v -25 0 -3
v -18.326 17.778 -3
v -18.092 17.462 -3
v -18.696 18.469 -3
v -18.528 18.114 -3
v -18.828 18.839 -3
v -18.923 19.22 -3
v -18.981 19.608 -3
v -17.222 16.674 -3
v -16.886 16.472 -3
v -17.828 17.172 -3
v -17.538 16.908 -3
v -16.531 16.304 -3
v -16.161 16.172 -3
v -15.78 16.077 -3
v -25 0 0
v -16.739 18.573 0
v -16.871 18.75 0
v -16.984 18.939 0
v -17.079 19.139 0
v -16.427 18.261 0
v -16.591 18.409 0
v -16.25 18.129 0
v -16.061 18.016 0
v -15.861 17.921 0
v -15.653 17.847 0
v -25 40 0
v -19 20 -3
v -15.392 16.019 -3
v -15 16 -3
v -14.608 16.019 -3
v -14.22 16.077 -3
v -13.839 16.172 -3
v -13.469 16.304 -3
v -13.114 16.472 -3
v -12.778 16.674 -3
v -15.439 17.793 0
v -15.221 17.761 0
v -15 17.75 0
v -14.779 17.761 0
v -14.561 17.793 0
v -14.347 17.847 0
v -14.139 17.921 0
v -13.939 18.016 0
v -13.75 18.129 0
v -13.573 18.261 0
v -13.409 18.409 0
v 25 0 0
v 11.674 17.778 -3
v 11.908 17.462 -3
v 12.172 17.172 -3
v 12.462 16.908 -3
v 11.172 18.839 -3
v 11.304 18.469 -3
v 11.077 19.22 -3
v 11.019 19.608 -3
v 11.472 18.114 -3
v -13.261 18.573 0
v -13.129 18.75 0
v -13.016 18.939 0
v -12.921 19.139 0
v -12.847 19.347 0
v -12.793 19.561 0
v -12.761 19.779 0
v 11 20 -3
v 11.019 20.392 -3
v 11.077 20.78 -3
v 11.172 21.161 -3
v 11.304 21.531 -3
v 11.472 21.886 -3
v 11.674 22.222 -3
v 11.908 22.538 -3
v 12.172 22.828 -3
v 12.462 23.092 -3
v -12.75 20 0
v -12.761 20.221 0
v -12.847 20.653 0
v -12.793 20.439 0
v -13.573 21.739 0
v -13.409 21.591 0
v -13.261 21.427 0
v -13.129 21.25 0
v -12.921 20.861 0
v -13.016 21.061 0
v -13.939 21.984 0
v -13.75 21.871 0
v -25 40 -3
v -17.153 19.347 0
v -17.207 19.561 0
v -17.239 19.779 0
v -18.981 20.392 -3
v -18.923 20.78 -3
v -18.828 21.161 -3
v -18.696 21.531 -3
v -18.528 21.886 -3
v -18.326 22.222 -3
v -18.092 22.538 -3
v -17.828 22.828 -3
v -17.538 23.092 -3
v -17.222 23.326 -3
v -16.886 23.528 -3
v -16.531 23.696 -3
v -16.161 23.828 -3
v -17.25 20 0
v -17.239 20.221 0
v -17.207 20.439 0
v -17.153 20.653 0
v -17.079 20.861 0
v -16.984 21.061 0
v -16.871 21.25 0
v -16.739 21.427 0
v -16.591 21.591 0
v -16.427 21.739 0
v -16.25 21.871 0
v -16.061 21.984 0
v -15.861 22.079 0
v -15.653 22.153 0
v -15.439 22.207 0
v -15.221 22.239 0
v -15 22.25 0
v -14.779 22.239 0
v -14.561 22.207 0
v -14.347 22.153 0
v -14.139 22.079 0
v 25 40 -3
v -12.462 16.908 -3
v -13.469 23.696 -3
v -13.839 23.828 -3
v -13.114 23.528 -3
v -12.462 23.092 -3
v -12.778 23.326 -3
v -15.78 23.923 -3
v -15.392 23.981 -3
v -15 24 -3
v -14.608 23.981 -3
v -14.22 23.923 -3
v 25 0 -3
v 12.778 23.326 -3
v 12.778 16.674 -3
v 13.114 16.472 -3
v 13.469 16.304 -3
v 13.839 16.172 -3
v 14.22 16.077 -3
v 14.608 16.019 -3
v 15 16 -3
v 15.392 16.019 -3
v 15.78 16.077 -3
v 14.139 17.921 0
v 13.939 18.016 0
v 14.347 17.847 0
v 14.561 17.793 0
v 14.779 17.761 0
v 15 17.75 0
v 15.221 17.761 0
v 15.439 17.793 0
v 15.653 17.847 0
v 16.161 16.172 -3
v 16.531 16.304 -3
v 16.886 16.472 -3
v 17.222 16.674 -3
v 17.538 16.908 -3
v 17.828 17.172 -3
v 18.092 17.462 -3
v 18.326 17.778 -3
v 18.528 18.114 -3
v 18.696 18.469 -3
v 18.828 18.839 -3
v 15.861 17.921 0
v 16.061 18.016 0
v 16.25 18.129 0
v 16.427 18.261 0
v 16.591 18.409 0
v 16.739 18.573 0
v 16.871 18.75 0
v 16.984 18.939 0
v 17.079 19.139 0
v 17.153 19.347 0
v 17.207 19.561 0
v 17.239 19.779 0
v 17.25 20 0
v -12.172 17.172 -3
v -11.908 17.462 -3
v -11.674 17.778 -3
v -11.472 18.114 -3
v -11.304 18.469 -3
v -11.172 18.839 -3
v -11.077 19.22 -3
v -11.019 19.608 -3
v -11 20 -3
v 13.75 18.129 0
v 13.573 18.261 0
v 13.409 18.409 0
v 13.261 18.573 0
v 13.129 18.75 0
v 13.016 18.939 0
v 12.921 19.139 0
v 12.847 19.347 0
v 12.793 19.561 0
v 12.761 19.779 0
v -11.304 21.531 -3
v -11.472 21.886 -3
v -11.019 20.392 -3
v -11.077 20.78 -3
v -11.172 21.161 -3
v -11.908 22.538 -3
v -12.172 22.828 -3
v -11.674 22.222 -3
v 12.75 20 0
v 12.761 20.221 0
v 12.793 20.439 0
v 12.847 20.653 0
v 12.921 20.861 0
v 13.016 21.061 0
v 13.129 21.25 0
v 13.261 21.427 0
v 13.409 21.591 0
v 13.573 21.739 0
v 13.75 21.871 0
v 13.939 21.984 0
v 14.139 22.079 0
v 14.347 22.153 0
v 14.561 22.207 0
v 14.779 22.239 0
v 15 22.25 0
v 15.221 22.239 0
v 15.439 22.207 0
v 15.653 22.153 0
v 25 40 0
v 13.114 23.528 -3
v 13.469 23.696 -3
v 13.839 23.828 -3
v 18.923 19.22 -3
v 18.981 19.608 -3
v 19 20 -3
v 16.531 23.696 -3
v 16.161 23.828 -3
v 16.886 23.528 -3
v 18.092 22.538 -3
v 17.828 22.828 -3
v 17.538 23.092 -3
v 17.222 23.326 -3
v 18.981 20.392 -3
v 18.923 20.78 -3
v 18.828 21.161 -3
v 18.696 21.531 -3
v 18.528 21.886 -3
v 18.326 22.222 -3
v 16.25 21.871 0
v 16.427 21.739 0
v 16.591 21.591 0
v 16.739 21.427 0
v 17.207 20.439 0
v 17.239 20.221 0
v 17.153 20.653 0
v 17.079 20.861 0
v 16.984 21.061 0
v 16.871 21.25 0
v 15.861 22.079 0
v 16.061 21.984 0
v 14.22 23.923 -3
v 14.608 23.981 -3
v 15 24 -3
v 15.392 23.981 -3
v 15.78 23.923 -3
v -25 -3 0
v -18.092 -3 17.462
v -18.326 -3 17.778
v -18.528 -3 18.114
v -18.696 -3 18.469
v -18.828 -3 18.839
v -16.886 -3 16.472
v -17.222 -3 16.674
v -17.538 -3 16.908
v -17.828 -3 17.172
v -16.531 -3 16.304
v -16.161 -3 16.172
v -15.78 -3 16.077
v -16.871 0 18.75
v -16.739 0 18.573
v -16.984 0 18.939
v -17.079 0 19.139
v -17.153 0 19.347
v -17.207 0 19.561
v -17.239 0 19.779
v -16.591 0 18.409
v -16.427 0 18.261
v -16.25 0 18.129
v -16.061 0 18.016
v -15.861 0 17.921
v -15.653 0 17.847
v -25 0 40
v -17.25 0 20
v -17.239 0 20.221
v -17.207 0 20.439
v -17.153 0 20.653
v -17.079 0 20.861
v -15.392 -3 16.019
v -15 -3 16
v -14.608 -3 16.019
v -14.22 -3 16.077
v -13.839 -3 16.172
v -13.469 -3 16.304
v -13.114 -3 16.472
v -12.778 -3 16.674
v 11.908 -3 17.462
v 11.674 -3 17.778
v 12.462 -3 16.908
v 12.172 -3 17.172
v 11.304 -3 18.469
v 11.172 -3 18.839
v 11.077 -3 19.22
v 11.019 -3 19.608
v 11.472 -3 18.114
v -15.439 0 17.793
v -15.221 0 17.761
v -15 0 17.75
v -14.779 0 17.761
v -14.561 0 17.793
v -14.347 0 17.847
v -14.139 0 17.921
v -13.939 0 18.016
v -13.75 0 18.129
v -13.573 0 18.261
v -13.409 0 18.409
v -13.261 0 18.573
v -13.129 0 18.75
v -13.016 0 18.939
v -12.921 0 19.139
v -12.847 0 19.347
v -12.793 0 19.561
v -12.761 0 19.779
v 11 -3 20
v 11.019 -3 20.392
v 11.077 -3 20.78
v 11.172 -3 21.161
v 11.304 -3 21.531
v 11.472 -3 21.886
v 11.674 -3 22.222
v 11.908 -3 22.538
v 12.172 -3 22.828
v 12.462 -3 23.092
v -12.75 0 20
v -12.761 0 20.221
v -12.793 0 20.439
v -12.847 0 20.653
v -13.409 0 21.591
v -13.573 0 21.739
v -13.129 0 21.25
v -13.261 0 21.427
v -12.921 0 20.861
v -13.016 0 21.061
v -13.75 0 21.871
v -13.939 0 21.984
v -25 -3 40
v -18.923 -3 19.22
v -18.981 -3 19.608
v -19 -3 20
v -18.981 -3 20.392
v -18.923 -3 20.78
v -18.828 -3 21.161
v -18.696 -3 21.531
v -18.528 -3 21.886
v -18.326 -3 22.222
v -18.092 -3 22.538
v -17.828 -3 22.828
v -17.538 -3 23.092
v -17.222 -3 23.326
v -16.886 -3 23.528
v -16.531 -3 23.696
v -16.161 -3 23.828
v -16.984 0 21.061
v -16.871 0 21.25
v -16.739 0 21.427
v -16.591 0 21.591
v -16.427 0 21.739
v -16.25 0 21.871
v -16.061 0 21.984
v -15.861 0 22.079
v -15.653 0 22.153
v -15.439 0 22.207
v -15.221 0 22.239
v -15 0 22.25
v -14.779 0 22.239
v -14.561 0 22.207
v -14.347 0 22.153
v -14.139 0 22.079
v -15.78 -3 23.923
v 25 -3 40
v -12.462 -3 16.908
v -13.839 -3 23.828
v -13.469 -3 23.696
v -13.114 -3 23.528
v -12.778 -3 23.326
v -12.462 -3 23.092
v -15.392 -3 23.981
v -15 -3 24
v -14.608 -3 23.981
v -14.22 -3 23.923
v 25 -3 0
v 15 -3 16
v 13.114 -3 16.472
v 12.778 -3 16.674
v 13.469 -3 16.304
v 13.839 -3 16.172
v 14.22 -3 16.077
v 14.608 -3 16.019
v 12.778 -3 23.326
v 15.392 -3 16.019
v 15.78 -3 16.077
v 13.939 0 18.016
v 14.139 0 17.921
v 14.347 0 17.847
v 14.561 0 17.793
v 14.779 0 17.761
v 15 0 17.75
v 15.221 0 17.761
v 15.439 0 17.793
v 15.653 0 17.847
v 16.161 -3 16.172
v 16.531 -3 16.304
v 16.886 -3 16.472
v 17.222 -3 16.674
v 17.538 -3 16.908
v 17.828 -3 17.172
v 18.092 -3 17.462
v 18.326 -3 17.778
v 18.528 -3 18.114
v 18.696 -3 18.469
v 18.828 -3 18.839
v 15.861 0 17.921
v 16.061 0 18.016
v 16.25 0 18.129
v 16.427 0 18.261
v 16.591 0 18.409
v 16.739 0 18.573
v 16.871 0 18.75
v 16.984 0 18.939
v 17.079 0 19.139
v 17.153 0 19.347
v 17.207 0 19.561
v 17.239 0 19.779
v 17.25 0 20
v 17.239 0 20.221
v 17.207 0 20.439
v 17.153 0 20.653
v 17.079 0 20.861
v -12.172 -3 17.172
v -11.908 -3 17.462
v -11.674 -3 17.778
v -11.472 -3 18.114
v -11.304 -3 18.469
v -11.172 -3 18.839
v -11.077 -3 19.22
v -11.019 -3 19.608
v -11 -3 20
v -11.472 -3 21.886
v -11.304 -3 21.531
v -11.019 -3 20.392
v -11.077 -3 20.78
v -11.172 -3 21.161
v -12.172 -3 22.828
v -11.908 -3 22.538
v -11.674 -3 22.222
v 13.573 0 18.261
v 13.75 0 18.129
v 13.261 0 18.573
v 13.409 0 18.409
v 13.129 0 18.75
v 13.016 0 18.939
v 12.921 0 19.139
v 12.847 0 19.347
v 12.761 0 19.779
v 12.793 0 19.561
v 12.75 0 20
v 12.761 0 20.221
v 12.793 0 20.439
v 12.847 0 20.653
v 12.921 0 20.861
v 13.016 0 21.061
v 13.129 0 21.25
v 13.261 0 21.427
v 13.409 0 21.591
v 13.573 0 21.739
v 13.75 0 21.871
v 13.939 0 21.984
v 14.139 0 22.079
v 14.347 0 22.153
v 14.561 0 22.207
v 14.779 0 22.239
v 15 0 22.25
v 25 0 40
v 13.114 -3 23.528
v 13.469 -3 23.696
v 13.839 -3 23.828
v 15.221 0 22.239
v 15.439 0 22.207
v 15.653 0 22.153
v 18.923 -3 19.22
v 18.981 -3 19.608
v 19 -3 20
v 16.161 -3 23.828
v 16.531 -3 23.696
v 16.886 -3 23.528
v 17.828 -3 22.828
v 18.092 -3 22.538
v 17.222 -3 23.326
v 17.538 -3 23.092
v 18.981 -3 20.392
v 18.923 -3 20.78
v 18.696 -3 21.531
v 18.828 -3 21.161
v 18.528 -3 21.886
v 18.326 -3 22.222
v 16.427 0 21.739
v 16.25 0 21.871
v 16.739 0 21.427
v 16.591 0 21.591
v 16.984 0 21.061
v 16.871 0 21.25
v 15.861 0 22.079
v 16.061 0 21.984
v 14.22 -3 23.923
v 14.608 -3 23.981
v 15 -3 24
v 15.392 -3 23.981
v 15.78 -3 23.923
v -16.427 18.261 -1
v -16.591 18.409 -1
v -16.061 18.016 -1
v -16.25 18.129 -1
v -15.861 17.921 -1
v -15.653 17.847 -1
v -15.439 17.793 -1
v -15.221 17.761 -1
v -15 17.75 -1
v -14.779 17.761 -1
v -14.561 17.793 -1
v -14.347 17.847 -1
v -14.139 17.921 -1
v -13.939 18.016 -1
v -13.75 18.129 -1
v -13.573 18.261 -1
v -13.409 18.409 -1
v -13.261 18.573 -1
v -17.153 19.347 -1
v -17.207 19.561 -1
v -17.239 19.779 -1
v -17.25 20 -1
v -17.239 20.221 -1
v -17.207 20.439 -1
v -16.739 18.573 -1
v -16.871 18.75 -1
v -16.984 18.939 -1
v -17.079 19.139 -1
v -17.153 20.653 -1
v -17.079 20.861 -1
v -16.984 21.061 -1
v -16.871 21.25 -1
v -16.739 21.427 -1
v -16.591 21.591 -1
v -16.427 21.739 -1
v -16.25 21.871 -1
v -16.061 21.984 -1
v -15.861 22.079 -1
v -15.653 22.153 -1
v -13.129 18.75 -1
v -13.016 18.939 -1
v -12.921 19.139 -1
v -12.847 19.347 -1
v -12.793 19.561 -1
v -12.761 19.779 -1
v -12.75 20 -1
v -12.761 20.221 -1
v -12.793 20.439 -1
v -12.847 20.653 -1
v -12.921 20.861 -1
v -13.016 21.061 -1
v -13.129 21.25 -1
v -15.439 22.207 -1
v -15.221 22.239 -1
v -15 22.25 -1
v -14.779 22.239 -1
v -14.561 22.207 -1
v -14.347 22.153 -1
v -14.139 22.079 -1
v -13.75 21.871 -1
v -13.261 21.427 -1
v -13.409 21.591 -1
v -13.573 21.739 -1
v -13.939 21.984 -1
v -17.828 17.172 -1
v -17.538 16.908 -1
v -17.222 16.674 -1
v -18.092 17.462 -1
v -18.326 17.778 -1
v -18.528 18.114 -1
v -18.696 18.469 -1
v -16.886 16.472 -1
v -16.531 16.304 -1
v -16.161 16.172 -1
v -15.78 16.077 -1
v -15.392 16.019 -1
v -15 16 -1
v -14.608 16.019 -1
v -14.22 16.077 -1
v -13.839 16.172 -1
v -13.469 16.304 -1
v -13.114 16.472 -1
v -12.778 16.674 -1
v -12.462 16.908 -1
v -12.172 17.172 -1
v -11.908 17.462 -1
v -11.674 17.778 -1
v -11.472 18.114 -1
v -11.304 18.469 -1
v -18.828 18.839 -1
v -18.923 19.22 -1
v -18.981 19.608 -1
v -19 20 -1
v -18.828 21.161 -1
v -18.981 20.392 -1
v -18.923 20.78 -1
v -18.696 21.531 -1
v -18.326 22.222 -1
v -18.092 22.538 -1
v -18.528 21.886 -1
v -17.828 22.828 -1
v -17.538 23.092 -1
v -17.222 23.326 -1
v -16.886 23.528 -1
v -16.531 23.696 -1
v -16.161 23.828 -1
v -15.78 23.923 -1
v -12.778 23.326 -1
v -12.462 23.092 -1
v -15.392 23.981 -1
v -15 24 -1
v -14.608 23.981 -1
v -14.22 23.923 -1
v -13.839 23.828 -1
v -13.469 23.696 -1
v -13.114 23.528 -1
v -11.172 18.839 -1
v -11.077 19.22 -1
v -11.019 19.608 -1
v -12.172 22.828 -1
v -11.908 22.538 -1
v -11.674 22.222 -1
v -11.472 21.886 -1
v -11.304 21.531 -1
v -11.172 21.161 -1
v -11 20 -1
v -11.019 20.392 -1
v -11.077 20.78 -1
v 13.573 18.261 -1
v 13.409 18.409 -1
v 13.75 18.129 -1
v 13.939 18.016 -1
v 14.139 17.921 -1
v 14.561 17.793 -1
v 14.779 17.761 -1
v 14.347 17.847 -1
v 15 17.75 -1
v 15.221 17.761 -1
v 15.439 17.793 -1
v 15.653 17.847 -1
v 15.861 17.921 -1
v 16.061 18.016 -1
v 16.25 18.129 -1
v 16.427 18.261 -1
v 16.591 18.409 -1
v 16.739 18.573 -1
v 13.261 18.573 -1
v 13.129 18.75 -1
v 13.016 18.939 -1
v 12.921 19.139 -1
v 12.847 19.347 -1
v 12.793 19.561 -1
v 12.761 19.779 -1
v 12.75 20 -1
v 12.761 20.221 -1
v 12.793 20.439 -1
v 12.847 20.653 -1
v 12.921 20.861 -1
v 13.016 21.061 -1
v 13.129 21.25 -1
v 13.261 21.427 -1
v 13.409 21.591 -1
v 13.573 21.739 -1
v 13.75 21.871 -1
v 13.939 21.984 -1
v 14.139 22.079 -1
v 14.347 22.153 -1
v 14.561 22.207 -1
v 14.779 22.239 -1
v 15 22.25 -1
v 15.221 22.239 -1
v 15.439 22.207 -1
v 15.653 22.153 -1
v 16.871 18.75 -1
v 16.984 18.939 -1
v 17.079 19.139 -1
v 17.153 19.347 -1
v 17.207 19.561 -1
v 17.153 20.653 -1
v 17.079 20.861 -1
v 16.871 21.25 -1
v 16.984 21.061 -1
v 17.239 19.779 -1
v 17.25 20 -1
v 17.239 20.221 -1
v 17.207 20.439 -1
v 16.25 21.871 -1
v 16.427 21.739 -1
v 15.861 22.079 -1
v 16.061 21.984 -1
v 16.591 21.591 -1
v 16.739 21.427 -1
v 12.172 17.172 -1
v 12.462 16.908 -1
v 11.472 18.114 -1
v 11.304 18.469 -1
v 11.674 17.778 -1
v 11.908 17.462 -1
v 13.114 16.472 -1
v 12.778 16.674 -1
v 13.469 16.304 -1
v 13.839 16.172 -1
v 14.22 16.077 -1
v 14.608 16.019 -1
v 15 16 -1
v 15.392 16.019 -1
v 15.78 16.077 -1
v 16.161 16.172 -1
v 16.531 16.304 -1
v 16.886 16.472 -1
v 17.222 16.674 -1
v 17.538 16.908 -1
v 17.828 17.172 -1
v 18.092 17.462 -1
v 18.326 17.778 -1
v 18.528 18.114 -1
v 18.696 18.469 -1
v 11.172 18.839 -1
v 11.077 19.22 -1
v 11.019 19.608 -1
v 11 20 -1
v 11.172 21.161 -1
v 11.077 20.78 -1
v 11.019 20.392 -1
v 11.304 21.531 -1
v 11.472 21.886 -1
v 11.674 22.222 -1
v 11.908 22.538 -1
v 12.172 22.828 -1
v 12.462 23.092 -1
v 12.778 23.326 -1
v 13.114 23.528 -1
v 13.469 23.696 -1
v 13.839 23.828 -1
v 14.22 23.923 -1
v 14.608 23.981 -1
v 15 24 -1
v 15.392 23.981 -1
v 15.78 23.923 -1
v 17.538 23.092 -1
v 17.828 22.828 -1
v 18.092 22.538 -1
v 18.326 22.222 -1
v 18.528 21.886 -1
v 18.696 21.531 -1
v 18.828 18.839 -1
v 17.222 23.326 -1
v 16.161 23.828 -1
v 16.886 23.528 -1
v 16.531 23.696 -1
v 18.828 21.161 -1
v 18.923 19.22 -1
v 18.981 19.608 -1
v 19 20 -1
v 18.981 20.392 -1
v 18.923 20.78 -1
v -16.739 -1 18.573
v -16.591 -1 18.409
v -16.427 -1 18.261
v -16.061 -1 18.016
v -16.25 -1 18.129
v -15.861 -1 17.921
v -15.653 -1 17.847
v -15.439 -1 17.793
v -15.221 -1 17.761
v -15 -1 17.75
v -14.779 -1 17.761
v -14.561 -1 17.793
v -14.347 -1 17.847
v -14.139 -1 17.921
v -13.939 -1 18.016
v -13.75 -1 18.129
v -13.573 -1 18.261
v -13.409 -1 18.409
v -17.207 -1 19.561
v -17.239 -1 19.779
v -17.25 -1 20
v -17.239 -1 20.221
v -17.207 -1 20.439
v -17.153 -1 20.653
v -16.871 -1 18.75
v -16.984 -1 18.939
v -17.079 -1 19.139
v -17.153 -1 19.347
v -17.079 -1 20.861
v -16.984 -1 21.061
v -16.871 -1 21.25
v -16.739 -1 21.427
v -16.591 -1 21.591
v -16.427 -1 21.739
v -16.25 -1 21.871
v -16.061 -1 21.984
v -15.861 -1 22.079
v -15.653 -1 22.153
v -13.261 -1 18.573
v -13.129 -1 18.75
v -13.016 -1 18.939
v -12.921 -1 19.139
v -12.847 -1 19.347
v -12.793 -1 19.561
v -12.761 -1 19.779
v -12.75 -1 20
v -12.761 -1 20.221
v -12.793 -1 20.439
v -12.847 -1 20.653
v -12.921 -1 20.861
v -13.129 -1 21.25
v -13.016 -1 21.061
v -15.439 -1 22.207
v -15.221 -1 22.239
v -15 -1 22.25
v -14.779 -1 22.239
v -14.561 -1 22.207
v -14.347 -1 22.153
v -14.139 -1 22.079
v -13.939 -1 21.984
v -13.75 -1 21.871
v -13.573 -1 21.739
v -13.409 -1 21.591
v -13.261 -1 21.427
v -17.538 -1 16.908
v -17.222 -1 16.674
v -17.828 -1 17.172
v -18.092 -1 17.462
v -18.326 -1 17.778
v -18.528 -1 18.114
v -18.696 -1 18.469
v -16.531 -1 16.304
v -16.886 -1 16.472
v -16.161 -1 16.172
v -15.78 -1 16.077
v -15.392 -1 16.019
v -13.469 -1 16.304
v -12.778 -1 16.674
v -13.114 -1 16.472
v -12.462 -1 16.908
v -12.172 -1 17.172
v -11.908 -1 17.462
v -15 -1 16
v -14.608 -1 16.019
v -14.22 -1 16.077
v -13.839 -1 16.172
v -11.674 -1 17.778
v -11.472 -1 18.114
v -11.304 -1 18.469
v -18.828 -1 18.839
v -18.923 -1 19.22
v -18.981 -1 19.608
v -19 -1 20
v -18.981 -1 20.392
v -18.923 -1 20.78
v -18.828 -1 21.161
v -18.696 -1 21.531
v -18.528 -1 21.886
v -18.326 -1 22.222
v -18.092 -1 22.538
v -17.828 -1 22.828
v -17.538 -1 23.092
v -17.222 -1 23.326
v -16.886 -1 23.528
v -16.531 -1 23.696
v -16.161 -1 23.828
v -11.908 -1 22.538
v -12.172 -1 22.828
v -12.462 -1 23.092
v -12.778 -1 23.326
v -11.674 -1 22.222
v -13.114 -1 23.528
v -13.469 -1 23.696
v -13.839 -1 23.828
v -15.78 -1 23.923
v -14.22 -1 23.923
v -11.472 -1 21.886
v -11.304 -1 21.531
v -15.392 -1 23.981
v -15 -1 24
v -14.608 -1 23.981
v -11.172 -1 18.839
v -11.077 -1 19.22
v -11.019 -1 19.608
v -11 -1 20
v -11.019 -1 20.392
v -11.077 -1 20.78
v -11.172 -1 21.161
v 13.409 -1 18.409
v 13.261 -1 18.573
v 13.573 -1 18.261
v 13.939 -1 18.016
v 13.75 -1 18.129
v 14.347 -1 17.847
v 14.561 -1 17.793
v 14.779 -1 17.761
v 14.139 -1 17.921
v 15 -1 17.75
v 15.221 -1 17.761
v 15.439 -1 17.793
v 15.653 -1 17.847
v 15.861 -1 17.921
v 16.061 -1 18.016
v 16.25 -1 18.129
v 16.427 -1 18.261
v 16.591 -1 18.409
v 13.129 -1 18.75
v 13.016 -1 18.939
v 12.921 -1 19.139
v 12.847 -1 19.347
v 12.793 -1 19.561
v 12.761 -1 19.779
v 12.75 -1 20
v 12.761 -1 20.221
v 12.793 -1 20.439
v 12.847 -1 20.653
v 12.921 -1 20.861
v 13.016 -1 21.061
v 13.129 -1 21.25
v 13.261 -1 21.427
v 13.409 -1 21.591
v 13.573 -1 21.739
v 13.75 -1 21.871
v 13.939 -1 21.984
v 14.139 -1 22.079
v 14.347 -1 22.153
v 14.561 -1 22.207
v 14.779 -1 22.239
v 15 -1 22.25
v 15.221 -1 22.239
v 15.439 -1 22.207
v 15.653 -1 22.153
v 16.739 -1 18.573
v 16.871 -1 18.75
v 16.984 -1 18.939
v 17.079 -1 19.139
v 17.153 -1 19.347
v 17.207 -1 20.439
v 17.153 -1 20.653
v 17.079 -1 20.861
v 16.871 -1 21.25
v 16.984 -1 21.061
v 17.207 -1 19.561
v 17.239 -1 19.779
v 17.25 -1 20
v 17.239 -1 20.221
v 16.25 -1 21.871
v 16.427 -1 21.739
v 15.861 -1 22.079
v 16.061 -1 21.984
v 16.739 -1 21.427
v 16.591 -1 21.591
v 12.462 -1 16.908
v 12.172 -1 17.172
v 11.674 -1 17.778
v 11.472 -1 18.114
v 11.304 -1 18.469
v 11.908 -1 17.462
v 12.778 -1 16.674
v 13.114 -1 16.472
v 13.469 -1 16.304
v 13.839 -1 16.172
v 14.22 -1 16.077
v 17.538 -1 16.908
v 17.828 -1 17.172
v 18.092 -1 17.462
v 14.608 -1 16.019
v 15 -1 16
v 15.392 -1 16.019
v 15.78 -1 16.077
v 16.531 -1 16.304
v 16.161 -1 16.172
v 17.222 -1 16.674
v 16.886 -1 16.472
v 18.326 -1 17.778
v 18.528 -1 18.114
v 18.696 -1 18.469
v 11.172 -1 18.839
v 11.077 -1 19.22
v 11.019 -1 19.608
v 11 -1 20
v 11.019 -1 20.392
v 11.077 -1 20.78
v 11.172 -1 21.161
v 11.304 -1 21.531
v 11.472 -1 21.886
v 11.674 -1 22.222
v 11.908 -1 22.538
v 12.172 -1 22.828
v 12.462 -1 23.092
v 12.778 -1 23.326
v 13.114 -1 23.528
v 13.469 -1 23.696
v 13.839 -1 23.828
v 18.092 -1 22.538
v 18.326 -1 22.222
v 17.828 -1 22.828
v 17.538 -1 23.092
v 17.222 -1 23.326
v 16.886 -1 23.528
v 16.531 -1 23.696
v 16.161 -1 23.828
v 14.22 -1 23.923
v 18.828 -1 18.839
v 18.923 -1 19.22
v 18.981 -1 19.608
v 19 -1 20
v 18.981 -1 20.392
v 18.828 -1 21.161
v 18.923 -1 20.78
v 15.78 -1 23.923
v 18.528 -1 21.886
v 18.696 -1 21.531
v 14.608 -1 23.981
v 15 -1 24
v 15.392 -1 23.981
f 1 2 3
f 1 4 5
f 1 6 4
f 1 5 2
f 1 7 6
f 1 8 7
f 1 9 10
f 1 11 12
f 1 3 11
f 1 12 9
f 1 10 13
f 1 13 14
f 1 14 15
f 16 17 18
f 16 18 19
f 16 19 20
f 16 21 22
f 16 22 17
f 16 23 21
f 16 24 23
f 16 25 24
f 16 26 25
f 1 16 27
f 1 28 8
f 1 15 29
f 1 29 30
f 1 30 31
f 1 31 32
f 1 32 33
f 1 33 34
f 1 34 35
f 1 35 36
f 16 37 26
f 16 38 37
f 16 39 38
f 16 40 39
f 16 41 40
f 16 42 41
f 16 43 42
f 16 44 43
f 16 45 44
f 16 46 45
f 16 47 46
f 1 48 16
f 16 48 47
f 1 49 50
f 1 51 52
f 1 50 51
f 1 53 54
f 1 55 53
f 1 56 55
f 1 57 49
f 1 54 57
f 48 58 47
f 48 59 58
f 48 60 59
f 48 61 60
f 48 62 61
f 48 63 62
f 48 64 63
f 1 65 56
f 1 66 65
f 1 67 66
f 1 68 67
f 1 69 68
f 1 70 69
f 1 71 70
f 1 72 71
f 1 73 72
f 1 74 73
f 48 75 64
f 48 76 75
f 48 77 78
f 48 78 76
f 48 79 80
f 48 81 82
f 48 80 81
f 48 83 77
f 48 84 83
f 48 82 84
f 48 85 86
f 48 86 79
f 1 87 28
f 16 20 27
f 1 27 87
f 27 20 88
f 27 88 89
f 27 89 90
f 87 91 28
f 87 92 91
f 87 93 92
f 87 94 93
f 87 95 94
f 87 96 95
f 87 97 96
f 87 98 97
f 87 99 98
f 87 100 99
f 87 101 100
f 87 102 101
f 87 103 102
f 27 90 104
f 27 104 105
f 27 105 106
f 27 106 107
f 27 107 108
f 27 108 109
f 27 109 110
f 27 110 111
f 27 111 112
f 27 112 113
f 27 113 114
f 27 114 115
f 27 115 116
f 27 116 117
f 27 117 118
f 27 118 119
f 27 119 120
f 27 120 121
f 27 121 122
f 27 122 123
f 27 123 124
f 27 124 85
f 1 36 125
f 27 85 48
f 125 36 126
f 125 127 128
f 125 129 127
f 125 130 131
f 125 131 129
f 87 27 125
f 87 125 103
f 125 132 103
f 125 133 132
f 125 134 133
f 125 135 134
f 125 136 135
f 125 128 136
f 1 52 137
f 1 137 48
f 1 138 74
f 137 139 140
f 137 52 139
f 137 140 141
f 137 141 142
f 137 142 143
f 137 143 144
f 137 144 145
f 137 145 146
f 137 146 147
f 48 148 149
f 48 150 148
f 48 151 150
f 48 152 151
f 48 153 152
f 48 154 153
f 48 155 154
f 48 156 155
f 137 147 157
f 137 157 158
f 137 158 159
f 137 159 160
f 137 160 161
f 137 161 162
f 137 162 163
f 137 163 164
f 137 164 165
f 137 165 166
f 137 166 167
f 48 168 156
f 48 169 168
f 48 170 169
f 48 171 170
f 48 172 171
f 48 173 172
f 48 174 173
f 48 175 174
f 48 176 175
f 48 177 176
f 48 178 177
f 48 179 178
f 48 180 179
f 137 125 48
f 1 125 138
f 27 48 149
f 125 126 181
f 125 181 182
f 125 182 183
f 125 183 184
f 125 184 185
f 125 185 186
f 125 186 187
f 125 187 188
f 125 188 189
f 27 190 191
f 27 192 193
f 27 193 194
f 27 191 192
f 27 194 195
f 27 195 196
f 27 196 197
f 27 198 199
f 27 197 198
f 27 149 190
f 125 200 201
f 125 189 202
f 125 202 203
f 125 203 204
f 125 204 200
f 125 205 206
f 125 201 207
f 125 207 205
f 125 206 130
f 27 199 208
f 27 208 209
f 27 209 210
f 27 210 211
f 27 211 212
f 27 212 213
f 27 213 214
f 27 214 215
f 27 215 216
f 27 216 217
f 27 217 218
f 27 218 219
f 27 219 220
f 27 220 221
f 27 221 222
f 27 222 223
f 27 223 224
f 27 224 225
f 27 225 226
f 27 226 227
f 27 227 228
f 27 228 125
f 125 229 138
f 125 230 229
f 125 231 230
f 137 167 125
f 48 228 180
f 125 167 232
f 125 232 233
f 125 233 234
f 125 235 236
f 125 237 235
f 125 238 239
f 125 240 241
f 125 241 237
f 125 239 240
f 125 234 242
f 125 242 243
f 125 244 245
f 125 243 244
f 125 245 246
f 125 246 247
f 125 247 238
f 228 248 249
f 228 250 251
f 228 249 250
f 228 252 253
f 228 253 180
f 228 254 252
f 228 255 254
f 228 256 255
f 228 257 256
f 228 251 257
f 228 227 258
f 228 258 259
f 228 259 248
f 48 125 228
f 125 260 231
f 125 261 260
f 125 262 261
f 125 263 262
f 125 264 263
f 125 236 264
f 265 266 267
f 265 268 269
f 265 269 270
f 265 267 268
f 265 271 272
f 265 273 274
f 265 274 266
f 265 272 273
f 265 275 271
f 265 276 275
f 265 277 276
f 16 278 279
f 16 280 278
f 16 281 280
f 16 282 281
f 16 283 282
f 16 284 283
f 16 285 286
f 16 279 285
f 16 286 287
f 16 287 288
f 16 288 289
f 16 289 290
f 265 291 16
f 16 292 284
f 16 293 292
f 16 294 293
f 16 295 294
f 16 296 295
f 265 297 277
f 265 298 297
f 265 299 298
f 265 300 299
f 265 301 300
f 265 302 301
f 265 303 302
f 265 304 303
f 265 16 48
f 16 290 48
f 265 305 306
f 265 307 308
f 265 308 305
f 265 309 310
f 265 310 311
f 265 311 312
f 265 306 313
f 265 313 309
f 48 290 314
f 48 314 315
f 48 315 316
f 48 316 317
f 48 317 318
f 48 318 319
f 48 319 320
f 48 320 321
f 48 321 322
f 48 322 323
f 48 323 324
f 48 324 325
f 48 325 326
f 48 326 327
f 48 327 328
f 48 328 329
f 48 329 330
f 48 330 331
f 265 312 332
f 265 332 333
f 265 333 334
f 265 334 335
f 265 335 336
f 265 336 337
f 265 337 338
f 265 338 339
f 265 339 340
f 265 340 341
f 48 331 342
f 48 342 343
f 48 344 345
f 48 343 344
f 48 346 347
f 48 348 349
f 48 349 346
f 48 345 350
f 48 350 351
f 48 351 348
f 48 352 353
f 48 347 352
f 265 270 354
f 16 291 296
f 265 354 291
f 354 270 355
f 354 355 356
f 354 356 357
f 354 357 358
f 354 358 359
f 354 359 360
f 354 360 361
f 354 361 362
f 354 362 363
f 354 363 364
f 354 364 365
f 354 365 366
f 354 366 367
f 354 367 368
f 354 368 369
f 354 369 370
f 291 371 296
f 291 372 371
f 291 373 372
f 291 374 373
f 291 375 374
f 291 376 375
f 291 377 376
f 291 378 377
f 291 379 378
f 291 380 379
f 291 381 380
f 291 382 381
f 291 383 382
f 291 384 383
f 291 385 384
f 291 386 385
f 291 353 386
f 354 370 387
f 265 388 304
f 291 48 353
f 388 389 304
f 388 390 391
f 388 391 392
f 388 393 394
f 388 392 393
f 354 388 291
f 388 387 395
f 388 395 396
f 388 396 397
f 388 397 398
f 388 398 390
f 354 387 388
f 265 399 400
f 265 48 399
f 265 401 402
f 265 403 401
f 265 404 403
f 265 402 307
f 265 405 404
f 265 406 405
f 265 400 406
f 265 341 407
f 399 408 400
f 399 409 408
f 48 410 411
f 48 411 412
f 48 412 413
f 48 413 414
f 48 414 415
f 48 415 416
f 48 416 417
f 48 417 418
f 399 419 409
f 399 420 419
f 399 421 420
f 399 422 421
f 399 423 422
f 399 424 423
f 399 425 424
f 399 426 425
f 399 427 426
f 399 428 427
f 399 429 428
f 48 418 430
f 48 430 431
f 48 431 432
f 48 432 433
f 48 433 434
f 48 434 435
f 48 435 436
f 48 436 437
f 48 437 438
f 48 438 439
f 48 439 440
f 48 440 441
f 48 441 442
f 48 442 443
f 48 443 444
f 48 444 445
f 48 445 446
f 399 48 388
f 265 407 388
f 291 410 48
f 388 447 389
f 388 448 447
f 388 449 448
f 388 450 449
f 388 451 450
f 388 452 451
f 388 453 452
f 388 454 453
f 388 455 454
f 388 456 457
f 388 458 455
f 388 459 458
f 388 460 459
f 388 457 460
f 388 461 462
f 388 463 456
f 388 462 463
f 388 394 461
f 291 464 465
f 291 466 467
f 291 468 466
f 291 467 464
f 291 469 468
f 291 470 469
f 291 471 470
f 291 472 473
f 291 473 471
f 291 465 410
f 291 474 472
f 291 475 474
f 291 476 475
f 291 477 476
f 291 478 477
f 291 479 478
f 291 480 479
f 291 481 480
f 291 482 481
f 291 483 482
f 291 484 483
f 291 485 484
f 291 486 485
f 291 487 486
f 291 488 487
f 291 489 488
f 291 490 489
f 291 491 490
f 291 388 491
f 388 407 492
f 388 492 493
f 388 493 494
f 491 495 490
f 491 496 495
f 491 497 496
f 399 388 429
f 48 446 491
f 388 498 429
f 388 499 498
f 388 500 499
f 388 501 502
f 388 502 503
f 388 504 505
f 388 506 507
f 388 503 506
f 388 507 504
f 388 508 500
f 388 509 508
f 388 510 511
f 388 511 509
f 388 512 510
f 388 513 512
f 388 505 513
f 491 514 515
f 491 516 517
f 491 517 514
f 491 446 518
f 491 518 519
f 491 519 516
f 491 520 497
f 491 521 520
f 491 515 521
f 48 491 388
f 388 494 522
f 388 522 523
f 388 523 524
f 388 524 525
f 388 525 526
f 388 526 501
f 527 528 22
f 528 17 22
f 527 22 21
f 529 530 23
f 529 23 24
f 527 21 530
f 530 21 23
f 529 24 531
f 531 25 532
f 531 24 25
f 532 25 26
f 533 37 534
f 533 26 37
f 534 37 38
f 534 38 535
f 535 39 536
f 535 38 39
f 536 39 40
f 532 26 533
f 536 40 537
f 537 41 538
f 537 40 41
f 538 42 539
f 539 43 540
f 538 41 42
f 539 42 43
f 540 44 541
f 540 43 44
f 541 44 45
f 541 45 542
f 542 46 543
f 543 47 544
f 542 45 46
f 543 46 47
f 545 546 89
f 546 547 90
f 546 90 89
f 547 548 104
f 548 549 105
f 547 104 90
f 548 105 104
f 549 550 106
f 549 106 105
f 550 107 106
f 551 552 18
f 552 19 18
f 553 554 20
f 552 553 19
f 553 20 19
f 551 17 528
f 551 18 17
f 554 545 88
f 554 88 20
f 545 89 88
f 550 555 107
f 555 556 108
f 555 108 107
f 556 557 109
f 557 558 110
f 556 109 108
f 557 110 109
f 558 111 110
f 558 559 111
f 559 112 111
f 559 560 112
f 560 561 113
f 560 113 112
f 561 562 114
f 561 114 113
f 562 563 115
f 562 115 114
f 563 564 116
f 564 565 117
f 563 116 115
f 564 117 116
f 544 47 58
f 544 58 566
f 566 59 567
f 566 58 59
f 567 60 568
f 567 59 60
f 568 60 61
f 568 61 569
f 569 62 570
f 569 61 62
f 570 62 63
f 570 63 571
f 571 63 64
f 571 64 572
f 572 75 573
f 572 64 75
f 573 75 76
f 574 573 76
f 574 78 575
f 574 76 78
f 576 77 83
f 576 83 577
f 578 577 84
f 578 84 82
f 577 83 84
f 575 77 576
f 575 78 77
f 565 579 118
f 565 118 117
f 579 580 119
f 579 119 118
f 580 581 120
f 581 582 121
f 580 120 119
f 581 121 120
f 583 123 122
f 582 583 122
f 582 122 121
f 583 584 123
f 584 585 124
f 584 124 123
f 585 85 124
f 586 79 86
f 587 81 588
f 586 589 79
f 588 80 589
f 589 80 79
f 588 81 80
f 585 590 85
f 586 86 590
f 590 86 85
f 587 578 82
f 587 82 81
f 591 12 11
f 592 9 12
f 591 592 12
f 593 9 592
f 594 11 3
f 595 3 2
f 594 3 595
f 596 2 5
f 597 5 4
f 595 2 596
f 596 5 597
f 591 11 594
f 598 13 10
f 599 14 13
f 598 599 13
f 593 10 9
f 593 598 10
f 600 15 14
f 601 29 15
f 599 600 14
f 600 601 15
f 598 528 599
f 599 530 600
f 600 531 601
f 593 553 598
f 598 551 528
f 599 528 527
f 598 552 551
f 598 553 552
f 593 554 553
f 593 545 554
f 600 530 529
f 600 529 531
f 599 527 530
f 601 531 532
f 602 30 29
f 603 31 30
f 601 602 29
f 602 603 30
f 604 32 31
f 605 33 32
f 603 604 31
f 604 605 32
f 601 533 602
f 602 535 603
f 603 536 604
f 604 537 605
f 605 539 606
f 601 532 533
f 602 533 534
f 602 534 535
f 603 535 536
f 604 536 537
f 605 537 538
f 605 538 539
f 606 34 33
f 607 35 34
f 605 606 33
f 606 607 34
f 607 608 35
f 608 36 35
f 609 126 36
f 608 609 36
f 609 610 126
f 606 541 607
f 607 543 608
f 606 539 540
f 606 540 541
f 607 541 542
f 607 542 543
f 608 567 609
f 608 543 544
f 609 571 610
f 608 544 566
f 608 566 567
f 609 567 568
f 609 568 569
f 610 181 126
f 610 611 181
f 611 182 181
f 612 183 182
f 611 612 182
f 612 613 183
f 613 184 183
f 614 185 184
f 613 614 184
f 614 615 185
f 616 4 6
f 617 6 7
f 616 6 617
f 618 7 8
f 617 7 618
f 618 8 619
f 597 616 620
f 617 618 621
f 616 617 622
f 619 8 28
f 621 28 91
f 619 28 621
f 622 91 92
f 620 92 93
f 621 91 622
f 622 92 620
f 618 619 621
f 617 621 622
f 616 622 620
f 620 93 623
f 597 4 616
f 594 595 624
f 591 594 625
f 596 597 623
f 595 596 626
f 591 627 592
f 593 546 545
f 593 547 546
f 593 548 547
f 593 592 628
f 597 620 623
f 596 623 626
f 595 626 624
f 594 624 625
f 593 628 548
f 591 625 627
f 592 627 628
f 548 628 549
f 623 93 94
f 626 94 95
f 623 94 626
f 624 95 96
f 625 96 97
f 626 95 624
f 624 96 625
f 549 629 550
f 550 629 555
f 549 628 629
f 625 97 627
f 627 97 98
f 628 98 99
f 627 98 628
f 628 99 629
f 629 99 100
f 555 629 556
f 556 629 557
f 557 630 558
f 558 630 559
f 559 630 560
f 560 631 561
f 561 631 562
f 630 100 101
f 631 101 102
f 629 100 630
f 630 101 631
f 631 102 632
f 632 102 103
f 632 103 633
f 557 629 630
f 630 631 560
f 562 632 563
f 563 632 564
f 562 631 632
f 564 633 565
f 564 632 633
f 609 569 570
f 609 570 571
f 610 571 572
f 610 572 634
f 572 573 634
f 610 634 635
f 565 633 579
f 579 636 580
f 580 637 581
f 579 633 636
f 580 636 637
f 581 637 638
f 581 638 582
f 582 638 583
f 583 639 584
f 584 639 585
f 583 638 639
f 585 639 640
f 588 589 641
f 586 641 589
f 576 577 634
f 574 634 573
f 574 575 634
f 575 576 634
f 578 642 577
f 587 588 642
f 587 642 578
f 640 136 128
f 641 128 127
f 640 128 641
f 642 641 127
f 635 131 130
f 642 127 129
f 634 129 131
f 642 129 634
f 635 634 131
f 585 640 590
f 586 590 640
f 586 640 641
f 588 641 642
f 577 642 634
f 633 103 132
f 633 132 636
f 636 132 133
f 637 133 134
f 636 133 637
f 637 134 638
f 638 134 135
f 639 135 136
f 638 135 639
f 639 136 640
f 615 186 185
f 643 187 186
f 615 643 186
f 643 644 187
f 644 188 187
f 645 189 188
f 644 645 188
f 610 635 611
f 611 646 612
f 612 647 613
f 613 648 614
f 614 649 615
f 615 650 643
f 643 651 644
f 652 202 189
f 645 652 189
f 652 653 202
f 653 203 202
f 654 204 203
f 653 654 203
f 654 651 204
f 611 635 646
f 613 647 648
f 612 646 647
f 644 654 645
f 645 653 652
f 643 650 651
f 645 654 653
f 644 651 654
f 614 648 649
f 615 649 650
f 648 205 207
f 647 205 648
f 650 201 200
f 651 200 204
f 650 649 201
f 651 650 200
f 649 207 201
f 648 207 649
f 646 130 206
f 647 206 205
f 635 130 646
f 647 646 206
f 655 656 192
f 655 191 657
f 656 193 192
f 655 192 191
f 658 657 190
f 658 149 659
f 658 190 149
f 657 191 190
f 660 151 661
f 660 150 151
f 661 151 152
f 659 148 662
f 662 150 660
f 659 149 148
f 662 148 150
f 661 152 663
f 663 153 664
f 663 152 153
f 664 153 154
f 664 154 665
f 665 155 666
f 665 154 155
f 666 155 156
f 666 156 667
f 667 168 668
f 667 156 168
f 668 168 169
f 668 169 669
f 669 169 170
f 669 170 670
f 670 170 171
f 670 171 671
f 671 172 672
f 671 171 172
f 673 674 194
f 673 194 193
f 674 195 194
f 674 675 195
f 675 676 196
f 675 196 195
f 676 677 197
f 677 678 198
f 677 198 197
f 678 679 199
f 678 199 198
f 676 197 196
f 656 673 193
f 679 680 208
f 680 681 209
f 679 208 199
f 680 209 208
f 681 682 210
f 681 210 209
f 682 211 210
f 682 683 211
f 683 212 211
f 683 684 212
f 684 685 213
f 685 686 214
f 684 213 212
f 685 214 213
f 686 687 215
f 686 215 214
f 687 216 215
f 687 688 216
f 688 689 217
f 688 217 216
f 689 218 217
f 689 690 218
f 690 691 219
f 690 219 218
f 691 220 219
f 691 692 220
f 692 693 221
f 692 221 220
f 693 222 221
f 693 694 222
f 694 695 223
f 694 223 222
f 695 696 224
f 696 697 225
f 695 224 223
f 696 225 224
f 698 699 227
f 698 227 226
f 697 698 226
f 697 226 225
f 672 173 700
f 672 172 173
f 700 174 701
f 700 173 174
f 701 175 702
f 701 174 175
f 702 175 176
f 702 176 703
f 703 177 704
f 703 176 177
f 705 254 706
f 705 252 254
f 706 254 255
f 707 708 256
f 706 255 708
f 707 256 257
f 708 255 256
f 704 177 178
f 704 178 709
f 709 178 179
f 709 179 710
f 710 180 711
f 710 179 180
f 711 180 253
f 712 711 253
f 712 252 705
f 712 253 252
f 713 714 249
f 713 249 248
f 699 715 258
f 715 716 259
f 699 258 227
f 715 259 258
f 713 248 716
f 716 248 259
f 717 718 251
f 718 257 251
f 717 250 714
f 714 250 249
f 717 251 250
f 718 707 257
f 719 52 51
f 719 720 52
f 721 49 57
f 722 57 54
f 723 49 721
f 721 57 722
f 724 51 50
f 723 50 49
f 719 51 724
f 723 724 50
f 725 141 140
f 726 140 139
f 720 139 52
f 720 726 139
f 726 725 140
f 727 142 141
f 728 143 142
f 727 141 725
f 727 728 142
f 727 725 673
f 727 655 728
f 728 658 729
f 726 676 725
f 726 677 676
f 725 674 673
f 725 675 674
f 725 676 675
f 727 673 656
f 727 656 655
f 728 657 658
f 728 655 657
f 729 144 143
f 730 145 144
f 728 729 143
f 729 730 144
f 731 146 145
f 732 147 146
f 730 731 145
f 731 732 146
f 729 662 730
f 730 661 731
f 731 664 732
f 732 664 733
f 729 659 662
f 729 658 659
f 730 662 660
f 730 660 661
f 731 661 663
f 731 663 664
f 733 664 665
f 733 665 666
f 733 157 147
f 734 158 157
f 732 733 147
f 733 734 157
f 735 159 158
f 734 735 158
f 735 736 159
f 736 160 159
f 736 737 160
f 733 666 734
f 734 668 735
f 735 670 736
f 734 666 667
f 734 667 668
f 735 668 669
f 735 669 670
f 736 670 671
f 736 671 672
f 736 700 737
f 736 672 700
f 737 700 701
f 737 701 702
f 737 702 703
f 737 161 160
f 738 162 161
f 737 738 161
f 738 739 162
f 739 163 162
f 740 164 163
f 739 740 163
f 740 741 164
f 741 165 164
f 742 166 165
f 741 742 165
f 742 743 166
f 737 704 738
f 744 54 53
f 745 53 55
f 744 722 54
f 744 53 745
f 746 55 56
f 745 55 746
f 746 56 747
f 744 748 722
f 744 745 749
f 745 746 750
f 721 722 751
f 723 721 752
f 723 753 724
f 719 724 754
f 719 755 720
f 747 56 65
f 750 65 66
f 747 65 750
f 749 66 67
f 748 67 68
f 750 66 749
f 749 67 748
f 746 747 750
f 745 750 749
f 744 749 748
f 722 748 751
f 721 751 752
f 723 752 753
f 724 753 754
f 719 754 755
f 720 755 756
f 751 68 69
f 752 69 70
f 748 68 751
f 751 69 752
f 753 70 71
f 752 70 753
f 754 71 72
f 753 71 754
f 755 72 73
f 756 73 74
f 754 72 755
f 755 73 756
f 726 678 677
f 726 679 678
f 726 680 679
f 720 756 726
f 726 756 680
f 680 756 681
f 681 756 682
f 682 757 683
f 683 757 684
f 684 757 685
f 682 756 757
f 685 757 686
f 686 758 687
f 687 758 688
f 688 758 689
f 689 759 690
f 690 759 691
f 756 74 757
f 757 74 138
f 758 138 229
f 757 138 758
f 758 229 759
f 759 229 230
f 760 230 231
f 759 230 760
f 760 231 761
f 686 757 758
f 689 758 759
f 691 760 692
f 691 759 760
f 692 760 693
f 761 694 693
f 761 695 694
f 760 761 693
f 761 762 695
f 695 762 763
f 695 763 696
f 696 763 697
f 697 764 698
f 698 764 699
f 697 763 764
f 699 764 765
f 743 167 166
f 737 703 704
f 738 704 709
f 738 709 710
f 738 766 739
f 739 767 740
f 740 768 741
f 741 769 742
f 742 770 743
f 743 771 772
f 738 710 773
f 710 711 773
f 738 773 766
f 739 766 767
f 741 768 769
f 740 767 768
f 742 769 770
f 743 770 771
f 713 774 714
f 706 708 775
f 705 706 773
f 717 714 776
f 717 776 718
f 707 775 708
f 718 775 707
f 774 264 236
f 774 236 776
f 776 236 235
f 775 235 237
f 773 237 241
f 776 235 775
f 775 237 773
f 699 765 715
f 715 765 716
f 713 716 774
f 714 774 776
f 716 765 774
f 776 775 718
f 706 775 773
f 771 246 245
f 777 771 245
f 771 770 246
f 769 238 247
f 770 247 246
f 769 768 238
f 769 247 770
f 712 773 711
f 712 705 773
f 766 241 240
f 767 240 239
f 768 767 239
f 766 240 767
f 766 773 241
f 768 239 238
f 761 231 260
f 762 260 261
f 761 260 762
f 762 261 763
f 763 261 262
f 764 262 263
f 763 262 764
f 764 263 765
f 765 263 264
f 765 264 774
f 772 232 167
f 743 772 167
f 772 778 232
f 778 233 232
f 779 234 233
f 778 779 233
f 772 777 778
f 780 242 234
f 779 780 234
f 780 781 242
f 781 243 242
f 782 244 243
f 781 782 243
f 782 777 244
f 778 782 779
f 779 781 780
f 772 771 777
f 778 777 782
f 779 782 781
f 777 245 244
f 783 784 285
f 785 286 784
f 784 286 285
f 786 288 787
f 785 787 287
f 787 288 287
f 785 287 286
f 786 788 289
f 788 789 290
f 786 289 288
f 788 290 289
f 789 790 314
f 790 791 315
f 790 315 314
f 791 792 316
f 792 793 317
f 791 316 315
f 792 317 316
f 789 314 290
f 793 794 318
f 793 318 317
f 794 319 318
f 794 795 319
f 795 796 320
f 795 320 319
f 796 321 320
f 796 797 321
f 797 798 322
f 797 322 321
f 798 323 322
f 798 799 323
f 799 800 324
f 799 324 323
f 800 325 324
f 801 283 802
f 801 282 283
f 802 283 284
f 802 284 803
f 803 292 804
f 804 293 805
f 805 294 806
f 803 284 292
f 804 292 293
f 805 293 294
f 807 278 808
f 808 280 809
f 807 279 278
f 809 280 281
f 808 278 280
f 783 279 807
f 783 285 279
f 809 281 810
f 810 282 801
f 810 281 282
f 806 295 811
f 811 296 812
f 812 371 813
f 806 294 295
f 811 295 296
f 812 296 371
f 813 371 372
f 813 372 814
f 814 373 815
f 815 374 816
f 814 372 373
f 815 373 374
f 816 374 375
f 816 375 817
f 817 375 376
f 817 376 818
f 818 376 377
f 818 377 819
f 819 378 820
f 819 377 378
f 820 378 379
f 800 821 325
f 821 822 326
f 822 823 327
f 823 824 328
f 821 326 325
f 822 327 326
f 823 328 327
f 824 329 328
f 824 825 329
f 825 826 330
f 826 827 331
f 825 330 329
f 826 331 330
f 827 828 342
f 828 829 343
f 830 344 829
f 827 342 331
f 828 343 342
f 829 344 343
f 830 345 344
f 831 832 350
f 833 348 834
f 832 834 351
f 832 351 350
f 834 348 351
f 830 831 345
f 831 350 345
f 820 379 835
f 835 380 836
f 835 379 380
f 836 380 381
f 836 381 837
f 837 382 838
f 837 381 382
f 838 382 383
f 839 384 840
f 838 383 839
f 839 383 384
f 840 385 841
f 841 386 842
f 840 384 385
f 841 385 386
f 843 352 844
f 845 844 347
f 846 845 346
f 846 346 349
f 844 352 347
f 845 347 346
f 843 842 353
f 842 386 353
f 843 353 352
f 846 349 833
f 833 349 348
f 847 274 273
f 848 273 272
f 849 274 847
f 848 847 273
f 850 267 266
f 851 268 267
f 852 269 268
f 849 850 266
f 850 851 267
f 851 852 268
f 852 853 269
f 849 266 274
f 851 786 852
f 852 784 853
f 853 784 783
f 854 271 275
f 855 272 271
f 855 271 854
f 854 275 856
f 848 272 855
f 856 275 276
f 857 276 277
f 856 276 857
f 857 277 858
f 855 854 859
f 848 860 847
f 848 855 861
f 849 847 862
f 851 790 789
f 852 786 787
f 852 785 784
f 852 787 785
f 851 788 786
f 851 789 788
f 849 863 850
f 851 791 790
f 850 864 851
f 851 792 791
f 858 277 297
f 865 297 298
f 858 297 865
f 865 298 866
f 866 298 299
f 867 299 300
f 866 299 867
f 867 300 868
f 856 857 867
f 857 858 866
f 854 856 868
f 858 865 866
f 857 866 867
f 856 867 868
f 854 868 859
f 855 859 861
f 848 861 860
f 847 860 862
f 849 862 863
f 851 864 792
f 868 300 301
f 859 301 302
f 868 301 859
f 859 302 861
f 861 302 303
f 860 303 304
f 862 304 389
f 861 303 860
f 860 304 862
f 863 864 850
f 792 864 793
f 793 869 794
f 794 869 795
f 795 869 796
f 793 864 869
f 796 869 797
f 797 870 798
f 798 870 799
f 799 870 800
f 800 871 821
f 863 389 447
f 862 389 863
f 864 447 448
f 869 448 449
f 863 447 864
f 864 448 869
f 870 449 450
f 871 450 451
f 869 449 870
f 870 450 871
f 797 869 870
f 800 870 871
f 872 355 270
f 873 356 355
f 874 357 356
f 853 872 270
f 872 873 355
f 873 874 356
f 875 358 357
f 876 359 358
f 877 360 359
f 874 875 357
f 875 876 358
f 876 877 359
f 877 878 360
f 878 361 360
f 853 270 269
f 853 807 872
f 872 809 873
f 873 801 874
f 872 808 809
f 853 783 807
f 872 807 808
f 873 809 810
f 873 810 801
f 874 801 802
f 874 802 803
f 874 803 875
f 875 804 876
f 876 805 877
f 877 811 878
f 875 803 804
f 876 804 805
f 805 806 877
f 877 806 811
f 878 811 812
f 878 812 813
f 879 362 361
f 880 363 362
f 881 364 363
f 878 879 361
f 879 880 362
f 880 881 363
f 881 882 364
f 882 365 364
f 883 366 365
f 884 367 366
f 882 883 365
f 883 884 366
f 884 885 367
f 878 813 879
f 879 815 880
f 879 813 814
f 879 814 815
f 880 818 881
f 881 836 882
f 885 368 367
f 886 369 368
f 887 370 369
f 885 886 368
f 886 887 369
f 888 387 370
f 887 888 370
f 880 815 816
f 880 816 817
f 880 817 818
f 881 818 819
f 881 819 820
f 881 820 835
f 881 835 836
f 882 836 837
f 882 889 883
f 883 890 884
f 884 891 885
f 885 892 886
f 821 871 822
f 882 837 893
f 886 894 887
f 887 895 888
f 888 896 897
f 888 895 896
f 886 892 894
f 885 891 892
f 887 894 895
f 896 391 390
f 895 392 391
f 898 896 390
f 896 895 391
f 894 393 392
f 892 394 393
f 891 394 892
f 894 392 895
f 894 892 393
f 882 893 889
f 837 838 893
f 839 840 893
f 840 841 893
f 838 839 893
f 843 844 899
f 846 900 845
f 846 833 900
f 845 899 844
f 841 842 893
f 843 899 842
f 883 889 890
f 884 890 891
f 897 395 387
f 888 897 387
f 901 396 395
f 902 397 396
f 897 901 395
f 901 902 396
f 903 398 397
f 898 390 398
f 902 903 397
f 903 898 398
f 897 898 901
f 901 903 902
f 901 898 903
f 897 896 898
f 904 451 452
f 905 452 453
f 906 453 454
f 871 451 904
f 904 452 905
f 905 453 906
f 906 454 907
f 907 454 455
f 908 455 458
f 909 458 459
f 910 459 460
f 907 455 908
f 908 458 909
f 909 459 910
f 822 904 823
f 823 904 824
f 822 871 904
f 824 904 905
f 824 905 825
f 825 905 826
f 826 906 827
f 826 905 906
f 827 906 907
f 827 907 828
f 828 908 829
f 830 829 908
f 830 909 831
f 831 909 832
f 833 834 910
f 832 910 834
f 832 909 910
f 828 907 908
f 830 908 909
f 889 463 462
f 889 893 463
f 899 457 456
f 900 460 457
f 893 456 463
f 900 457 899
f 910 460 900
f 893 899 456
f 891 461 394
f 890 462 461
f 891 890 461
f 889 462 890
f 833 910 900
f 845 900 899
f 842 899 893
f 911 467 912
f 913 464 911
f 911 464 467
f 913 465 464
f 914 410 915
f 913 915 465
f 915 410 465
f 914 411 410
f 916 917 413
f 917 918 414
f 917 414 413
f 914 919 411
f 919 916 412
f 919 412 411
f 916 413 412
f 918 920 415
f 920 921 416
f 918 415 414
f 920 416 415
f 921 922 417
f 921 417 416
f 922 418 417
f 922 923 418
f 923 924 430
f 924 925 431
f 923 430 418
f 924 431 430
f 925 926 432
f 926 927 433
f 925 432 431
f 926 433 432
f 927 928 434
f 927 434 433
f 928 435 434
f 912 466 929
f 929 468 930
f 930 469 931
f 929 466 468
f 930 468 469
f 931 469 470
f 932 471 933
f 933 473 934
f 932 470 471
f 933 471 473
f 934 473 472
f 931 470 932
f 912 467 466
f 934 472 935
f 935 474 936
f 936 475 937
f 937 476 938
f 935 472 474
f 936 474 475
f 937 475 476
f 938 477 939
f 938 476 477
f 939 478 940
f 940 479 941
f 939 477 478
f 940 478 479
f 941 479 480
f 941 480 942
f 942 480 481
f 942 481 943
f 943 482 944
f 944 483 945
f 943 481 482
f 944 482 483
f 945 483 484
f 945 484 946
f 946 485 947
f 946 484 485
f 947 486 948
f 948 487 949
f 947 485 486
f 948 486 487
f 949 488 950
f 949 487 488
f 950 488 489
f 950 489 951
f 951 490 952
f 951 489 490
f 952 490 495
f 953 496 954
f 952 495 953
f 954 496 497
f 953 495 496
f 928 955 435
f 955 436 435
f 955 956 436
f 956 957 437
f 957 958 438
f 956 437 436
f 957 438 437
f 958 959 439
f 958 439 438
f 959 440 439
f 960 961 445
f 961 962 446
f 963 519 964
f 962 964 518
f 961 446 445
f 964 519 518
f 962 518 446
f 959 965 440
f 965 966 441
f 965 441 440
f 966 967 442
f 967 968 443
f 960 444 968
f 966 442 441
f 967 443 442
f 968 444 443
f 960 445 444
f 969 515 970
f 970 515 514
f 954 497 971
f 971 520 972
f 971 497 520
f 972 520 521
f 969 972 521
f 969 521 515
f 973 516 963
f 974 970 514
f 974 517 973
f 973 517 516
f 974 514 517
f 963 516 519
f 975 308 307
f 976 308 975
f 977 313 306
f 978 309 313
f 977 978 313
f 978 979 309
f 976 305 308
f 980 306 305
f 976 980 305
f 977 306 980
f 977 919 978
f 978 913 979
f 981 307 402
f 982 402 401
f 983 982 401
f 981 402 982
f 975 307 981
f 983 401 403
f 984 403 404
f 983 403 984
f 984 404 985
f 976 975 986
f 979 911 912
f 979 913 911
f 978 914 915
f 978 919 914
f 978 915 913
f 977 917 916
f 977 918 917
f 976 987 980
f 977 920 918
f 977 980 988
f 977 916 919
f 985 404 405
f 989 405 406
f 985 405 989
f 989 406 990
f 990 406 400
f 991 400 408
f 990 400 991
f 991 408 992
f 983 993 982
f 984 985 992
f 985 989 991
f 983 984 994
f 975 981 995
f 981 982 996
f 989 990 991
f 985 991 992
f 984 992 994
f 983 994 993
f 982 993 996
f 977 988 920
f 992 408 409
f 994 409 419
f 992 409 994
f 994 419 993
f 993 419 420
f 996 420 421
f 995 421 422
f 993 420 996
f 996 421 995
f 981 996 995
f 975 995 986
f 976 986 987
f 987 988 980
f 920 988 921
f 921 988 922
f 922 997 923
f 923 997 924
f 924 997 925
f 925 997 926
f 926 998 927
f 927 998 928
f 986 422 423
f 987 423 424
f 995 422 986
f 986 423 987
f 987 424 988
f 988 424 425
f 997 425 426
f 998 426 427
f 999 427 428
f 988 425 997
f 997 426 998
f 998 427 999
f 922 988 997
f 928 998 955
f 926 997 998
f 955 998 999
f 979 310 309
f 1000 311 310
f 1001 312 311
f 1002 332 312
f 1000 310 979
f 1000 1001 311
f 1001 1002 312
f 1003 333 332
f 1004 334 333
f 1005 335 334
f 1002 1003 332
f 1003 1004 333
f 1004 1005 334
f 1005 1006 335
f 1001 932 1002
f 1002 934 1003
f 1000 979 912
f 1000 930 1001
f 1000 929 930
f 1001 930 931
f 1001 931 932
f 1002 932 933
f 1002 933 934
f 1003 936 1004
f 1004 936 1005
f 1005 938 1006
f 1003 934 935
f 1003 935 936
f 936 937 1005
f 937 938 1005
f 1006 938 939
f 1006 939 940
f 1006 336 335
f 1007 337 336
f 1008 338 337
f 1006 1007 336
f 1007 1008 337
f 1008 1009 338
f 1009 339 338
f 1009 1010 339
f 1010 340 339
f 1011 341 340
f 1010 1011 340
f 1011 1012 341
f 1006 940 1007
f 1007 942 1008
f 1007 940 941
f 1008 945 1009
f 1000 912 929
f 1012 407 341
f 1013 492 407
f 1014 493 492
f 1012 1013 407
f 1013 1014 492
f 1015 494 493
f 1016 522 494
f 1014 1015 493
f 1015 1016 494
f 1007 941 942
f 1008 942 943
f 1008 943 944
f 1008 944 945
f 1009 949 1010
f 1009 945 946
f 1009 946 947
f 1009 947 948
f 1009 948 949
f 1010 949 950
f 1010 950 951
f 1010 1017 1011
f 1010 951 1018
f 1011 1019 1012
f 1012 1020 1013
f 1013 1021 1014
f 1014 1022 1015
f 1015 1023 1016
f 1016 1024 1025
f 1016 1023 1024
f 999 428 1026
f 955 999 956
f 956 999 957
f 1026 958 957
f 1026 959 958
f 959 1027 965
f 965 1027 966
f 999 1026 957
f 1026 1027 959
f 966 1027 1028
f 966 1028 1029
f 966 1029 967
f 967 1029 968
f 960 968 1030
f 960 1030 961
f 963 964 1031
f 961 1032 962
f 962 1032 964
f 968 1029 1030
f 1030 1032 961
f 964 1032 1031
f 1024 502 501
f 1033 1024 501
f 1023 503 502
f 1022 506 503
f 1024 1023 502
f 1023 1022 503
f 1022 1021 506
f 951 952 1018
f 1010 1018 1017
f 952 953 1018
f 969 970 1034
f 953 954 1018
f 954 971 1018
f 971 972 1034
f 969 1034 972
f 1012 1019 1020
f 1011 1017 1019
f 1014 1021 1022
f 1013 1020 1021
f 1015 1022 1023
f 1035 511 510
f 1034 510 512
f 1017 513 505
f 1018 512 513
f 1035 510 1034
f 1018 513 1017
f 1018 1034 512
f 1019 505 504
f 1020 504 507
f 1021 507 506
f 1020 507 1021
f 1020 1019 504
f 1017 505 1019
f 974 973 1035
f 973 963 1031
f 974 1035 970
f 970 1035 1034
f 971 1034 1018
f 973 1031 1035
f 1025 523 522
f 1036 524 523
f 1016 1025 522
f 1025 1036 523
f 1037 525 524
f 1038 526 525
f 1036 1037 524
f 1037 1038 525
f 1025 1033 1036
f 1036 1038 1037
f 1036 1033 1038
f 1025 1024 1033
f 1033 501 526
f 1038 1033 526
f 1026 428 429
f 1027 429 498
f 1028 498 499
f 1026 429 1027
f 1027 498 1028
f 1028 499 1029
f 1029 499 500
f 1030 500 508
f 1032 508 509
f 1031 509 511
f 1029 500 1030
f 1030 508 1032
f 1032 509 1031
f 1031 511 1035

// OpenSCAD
$fn = 64;

width = 50;
depth = 40;
height = 40;
thickness = 3;

through_d = 4.5;
csk_d = 8;
csk_depth = 2;

hole_offset_from_side = 10;

hole_x1 = -width/2 + hole_offset_from_side;
hole_x2 =  width/2 - hole_offset_from_side;
h_center_y = depth/2;
v_center_z = height/2;

difference() {
    union() {
        // Horizontal flange: inside face at z=0, extends +Y, thickness to -Z
        translate([-width/2, 0, -thickness])
            cube([width, depth, thickness]);

        // Vertical flange: inside face at y=0, extends +Z, thickness to -Y
        translate([-width/2, -thickness, 0])
            cube([width, thickness, height]);
    }

    // Horizontal flange holes (outer side = bottom, -Z)
    for (x = [hole_x1, hole_x2]) {
        // Through hole
        translate([x, h_center_y, -thickness - 0.1])
            cylinder(d = through_d, h = thickness + 0.2);

        // Countersunk seat
        translate([x, h_center_y, -thickness - 0.1])
            cylinder(d = csk_d, h = csk_depth + 0.1);
    }

    // Vertical flange holes (outer side = back, -Y)
    for (x = [hole_x1, hole_x2]) {
        // Through hole
        translate([x, -thickness - 0.1, v_center_z])
            rotate([-90, 0, 0])
                cylinder(d = through_d, h = thickness + 0.2);

        // Countersunk seat
        translate([x, -thickness - 0.1, v_center_z])
            rotate([-90, 0, 0])
                cylinder(d = csk_d, h = csk_depth + 0.1);
    }
}
